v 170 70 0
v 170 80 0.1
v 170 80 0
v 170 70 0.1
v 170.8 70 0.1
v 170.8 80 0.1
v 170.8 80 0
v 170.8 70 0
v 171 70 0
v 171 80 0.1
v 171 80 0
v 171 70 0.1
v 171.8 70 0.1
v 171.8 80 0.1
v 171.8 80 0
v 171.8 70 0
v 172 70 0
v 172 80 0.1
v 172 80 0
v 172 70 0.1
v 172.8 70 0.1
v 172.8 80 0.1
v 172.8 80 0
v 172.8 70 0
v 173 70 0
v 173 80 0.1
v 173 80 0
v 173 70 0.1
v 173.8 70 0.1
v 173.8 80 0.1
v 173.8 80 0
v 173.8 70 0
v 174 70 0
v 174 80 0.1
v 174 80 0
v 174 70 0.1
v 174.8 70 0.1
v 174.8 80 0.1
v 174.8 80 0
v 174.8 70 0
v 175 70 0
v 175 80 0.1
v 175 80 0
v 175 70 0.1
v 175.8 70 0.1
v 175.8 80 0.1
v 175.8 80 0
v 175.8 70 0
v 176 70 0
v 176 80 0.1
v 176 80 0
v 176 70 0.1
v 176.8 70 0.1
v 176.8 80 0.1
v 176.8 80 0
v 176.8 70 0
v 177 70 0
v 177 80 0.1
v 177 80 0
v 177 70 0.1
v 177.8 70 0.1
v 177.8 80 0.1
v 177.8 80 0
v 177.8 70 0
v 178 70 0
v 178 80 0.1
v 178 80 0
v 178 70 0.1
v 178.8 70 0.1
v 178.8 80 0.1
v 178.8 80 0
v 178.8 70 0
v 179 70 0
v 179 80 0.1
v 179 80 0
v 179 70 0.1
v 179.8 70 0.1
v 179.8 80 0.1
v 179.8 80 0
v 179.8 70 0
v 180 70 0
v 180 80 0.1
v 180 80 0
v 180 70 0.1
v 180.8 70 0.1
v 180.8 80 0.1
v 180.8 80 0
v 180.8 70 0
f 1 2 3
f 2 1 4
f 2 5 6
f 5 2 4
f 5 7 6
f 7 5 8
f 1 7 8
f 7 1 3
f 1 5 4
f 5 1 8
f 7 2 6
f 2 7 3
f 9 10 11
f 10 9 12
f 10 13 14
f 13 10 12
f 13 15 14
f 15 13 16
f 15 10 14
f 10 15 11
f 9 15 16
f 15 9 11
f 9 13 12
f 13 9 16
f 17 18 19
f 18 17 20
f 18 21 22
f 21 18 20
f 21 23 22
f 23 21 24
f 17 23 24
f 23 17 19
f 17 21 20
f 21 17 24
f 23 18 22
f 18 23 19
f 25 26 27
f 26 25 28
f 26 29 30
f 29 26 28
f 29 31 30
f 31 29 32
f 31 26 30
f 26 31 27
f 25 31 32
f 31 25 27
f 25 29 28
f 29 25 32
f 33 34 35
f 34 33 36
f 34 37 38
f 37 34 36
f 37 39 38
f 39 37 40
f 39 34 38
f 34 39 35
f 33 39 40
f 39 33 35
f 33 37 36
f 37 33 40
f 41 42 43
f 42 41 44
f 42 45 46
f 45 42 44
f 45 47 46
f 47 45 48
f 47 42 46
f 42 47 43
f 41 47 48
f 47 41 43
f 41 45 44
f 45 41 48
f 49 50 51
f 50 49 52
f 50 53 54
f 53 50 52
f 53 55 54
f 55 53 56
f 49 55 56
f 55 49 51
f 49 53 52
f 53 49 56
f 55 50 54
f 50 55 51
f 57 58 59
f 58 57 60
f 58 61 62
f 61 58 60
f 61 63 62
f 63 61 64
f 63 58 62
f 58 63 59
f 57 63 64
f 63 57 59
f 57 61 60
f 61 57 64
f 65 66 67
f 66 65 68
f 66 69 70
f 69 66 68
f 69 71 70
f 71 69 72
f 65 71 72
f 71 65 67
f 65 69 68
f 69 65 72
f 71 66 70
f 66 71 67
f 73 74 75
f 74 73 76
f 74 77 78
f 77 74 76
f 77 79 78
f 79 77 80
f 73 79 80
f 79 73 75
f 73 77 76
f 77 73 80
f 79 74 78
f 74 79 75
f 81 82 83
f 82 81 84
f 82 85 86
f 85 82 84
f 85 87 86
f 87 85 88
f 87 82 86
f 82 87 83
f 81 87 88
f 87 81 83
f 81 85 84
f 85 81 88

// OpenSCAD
translate([10+160,10+60,0])
        for (i = [0 : 10]){
            translate([i,0,0])
                cube(size = [0.8,10,0.1]);
    }
